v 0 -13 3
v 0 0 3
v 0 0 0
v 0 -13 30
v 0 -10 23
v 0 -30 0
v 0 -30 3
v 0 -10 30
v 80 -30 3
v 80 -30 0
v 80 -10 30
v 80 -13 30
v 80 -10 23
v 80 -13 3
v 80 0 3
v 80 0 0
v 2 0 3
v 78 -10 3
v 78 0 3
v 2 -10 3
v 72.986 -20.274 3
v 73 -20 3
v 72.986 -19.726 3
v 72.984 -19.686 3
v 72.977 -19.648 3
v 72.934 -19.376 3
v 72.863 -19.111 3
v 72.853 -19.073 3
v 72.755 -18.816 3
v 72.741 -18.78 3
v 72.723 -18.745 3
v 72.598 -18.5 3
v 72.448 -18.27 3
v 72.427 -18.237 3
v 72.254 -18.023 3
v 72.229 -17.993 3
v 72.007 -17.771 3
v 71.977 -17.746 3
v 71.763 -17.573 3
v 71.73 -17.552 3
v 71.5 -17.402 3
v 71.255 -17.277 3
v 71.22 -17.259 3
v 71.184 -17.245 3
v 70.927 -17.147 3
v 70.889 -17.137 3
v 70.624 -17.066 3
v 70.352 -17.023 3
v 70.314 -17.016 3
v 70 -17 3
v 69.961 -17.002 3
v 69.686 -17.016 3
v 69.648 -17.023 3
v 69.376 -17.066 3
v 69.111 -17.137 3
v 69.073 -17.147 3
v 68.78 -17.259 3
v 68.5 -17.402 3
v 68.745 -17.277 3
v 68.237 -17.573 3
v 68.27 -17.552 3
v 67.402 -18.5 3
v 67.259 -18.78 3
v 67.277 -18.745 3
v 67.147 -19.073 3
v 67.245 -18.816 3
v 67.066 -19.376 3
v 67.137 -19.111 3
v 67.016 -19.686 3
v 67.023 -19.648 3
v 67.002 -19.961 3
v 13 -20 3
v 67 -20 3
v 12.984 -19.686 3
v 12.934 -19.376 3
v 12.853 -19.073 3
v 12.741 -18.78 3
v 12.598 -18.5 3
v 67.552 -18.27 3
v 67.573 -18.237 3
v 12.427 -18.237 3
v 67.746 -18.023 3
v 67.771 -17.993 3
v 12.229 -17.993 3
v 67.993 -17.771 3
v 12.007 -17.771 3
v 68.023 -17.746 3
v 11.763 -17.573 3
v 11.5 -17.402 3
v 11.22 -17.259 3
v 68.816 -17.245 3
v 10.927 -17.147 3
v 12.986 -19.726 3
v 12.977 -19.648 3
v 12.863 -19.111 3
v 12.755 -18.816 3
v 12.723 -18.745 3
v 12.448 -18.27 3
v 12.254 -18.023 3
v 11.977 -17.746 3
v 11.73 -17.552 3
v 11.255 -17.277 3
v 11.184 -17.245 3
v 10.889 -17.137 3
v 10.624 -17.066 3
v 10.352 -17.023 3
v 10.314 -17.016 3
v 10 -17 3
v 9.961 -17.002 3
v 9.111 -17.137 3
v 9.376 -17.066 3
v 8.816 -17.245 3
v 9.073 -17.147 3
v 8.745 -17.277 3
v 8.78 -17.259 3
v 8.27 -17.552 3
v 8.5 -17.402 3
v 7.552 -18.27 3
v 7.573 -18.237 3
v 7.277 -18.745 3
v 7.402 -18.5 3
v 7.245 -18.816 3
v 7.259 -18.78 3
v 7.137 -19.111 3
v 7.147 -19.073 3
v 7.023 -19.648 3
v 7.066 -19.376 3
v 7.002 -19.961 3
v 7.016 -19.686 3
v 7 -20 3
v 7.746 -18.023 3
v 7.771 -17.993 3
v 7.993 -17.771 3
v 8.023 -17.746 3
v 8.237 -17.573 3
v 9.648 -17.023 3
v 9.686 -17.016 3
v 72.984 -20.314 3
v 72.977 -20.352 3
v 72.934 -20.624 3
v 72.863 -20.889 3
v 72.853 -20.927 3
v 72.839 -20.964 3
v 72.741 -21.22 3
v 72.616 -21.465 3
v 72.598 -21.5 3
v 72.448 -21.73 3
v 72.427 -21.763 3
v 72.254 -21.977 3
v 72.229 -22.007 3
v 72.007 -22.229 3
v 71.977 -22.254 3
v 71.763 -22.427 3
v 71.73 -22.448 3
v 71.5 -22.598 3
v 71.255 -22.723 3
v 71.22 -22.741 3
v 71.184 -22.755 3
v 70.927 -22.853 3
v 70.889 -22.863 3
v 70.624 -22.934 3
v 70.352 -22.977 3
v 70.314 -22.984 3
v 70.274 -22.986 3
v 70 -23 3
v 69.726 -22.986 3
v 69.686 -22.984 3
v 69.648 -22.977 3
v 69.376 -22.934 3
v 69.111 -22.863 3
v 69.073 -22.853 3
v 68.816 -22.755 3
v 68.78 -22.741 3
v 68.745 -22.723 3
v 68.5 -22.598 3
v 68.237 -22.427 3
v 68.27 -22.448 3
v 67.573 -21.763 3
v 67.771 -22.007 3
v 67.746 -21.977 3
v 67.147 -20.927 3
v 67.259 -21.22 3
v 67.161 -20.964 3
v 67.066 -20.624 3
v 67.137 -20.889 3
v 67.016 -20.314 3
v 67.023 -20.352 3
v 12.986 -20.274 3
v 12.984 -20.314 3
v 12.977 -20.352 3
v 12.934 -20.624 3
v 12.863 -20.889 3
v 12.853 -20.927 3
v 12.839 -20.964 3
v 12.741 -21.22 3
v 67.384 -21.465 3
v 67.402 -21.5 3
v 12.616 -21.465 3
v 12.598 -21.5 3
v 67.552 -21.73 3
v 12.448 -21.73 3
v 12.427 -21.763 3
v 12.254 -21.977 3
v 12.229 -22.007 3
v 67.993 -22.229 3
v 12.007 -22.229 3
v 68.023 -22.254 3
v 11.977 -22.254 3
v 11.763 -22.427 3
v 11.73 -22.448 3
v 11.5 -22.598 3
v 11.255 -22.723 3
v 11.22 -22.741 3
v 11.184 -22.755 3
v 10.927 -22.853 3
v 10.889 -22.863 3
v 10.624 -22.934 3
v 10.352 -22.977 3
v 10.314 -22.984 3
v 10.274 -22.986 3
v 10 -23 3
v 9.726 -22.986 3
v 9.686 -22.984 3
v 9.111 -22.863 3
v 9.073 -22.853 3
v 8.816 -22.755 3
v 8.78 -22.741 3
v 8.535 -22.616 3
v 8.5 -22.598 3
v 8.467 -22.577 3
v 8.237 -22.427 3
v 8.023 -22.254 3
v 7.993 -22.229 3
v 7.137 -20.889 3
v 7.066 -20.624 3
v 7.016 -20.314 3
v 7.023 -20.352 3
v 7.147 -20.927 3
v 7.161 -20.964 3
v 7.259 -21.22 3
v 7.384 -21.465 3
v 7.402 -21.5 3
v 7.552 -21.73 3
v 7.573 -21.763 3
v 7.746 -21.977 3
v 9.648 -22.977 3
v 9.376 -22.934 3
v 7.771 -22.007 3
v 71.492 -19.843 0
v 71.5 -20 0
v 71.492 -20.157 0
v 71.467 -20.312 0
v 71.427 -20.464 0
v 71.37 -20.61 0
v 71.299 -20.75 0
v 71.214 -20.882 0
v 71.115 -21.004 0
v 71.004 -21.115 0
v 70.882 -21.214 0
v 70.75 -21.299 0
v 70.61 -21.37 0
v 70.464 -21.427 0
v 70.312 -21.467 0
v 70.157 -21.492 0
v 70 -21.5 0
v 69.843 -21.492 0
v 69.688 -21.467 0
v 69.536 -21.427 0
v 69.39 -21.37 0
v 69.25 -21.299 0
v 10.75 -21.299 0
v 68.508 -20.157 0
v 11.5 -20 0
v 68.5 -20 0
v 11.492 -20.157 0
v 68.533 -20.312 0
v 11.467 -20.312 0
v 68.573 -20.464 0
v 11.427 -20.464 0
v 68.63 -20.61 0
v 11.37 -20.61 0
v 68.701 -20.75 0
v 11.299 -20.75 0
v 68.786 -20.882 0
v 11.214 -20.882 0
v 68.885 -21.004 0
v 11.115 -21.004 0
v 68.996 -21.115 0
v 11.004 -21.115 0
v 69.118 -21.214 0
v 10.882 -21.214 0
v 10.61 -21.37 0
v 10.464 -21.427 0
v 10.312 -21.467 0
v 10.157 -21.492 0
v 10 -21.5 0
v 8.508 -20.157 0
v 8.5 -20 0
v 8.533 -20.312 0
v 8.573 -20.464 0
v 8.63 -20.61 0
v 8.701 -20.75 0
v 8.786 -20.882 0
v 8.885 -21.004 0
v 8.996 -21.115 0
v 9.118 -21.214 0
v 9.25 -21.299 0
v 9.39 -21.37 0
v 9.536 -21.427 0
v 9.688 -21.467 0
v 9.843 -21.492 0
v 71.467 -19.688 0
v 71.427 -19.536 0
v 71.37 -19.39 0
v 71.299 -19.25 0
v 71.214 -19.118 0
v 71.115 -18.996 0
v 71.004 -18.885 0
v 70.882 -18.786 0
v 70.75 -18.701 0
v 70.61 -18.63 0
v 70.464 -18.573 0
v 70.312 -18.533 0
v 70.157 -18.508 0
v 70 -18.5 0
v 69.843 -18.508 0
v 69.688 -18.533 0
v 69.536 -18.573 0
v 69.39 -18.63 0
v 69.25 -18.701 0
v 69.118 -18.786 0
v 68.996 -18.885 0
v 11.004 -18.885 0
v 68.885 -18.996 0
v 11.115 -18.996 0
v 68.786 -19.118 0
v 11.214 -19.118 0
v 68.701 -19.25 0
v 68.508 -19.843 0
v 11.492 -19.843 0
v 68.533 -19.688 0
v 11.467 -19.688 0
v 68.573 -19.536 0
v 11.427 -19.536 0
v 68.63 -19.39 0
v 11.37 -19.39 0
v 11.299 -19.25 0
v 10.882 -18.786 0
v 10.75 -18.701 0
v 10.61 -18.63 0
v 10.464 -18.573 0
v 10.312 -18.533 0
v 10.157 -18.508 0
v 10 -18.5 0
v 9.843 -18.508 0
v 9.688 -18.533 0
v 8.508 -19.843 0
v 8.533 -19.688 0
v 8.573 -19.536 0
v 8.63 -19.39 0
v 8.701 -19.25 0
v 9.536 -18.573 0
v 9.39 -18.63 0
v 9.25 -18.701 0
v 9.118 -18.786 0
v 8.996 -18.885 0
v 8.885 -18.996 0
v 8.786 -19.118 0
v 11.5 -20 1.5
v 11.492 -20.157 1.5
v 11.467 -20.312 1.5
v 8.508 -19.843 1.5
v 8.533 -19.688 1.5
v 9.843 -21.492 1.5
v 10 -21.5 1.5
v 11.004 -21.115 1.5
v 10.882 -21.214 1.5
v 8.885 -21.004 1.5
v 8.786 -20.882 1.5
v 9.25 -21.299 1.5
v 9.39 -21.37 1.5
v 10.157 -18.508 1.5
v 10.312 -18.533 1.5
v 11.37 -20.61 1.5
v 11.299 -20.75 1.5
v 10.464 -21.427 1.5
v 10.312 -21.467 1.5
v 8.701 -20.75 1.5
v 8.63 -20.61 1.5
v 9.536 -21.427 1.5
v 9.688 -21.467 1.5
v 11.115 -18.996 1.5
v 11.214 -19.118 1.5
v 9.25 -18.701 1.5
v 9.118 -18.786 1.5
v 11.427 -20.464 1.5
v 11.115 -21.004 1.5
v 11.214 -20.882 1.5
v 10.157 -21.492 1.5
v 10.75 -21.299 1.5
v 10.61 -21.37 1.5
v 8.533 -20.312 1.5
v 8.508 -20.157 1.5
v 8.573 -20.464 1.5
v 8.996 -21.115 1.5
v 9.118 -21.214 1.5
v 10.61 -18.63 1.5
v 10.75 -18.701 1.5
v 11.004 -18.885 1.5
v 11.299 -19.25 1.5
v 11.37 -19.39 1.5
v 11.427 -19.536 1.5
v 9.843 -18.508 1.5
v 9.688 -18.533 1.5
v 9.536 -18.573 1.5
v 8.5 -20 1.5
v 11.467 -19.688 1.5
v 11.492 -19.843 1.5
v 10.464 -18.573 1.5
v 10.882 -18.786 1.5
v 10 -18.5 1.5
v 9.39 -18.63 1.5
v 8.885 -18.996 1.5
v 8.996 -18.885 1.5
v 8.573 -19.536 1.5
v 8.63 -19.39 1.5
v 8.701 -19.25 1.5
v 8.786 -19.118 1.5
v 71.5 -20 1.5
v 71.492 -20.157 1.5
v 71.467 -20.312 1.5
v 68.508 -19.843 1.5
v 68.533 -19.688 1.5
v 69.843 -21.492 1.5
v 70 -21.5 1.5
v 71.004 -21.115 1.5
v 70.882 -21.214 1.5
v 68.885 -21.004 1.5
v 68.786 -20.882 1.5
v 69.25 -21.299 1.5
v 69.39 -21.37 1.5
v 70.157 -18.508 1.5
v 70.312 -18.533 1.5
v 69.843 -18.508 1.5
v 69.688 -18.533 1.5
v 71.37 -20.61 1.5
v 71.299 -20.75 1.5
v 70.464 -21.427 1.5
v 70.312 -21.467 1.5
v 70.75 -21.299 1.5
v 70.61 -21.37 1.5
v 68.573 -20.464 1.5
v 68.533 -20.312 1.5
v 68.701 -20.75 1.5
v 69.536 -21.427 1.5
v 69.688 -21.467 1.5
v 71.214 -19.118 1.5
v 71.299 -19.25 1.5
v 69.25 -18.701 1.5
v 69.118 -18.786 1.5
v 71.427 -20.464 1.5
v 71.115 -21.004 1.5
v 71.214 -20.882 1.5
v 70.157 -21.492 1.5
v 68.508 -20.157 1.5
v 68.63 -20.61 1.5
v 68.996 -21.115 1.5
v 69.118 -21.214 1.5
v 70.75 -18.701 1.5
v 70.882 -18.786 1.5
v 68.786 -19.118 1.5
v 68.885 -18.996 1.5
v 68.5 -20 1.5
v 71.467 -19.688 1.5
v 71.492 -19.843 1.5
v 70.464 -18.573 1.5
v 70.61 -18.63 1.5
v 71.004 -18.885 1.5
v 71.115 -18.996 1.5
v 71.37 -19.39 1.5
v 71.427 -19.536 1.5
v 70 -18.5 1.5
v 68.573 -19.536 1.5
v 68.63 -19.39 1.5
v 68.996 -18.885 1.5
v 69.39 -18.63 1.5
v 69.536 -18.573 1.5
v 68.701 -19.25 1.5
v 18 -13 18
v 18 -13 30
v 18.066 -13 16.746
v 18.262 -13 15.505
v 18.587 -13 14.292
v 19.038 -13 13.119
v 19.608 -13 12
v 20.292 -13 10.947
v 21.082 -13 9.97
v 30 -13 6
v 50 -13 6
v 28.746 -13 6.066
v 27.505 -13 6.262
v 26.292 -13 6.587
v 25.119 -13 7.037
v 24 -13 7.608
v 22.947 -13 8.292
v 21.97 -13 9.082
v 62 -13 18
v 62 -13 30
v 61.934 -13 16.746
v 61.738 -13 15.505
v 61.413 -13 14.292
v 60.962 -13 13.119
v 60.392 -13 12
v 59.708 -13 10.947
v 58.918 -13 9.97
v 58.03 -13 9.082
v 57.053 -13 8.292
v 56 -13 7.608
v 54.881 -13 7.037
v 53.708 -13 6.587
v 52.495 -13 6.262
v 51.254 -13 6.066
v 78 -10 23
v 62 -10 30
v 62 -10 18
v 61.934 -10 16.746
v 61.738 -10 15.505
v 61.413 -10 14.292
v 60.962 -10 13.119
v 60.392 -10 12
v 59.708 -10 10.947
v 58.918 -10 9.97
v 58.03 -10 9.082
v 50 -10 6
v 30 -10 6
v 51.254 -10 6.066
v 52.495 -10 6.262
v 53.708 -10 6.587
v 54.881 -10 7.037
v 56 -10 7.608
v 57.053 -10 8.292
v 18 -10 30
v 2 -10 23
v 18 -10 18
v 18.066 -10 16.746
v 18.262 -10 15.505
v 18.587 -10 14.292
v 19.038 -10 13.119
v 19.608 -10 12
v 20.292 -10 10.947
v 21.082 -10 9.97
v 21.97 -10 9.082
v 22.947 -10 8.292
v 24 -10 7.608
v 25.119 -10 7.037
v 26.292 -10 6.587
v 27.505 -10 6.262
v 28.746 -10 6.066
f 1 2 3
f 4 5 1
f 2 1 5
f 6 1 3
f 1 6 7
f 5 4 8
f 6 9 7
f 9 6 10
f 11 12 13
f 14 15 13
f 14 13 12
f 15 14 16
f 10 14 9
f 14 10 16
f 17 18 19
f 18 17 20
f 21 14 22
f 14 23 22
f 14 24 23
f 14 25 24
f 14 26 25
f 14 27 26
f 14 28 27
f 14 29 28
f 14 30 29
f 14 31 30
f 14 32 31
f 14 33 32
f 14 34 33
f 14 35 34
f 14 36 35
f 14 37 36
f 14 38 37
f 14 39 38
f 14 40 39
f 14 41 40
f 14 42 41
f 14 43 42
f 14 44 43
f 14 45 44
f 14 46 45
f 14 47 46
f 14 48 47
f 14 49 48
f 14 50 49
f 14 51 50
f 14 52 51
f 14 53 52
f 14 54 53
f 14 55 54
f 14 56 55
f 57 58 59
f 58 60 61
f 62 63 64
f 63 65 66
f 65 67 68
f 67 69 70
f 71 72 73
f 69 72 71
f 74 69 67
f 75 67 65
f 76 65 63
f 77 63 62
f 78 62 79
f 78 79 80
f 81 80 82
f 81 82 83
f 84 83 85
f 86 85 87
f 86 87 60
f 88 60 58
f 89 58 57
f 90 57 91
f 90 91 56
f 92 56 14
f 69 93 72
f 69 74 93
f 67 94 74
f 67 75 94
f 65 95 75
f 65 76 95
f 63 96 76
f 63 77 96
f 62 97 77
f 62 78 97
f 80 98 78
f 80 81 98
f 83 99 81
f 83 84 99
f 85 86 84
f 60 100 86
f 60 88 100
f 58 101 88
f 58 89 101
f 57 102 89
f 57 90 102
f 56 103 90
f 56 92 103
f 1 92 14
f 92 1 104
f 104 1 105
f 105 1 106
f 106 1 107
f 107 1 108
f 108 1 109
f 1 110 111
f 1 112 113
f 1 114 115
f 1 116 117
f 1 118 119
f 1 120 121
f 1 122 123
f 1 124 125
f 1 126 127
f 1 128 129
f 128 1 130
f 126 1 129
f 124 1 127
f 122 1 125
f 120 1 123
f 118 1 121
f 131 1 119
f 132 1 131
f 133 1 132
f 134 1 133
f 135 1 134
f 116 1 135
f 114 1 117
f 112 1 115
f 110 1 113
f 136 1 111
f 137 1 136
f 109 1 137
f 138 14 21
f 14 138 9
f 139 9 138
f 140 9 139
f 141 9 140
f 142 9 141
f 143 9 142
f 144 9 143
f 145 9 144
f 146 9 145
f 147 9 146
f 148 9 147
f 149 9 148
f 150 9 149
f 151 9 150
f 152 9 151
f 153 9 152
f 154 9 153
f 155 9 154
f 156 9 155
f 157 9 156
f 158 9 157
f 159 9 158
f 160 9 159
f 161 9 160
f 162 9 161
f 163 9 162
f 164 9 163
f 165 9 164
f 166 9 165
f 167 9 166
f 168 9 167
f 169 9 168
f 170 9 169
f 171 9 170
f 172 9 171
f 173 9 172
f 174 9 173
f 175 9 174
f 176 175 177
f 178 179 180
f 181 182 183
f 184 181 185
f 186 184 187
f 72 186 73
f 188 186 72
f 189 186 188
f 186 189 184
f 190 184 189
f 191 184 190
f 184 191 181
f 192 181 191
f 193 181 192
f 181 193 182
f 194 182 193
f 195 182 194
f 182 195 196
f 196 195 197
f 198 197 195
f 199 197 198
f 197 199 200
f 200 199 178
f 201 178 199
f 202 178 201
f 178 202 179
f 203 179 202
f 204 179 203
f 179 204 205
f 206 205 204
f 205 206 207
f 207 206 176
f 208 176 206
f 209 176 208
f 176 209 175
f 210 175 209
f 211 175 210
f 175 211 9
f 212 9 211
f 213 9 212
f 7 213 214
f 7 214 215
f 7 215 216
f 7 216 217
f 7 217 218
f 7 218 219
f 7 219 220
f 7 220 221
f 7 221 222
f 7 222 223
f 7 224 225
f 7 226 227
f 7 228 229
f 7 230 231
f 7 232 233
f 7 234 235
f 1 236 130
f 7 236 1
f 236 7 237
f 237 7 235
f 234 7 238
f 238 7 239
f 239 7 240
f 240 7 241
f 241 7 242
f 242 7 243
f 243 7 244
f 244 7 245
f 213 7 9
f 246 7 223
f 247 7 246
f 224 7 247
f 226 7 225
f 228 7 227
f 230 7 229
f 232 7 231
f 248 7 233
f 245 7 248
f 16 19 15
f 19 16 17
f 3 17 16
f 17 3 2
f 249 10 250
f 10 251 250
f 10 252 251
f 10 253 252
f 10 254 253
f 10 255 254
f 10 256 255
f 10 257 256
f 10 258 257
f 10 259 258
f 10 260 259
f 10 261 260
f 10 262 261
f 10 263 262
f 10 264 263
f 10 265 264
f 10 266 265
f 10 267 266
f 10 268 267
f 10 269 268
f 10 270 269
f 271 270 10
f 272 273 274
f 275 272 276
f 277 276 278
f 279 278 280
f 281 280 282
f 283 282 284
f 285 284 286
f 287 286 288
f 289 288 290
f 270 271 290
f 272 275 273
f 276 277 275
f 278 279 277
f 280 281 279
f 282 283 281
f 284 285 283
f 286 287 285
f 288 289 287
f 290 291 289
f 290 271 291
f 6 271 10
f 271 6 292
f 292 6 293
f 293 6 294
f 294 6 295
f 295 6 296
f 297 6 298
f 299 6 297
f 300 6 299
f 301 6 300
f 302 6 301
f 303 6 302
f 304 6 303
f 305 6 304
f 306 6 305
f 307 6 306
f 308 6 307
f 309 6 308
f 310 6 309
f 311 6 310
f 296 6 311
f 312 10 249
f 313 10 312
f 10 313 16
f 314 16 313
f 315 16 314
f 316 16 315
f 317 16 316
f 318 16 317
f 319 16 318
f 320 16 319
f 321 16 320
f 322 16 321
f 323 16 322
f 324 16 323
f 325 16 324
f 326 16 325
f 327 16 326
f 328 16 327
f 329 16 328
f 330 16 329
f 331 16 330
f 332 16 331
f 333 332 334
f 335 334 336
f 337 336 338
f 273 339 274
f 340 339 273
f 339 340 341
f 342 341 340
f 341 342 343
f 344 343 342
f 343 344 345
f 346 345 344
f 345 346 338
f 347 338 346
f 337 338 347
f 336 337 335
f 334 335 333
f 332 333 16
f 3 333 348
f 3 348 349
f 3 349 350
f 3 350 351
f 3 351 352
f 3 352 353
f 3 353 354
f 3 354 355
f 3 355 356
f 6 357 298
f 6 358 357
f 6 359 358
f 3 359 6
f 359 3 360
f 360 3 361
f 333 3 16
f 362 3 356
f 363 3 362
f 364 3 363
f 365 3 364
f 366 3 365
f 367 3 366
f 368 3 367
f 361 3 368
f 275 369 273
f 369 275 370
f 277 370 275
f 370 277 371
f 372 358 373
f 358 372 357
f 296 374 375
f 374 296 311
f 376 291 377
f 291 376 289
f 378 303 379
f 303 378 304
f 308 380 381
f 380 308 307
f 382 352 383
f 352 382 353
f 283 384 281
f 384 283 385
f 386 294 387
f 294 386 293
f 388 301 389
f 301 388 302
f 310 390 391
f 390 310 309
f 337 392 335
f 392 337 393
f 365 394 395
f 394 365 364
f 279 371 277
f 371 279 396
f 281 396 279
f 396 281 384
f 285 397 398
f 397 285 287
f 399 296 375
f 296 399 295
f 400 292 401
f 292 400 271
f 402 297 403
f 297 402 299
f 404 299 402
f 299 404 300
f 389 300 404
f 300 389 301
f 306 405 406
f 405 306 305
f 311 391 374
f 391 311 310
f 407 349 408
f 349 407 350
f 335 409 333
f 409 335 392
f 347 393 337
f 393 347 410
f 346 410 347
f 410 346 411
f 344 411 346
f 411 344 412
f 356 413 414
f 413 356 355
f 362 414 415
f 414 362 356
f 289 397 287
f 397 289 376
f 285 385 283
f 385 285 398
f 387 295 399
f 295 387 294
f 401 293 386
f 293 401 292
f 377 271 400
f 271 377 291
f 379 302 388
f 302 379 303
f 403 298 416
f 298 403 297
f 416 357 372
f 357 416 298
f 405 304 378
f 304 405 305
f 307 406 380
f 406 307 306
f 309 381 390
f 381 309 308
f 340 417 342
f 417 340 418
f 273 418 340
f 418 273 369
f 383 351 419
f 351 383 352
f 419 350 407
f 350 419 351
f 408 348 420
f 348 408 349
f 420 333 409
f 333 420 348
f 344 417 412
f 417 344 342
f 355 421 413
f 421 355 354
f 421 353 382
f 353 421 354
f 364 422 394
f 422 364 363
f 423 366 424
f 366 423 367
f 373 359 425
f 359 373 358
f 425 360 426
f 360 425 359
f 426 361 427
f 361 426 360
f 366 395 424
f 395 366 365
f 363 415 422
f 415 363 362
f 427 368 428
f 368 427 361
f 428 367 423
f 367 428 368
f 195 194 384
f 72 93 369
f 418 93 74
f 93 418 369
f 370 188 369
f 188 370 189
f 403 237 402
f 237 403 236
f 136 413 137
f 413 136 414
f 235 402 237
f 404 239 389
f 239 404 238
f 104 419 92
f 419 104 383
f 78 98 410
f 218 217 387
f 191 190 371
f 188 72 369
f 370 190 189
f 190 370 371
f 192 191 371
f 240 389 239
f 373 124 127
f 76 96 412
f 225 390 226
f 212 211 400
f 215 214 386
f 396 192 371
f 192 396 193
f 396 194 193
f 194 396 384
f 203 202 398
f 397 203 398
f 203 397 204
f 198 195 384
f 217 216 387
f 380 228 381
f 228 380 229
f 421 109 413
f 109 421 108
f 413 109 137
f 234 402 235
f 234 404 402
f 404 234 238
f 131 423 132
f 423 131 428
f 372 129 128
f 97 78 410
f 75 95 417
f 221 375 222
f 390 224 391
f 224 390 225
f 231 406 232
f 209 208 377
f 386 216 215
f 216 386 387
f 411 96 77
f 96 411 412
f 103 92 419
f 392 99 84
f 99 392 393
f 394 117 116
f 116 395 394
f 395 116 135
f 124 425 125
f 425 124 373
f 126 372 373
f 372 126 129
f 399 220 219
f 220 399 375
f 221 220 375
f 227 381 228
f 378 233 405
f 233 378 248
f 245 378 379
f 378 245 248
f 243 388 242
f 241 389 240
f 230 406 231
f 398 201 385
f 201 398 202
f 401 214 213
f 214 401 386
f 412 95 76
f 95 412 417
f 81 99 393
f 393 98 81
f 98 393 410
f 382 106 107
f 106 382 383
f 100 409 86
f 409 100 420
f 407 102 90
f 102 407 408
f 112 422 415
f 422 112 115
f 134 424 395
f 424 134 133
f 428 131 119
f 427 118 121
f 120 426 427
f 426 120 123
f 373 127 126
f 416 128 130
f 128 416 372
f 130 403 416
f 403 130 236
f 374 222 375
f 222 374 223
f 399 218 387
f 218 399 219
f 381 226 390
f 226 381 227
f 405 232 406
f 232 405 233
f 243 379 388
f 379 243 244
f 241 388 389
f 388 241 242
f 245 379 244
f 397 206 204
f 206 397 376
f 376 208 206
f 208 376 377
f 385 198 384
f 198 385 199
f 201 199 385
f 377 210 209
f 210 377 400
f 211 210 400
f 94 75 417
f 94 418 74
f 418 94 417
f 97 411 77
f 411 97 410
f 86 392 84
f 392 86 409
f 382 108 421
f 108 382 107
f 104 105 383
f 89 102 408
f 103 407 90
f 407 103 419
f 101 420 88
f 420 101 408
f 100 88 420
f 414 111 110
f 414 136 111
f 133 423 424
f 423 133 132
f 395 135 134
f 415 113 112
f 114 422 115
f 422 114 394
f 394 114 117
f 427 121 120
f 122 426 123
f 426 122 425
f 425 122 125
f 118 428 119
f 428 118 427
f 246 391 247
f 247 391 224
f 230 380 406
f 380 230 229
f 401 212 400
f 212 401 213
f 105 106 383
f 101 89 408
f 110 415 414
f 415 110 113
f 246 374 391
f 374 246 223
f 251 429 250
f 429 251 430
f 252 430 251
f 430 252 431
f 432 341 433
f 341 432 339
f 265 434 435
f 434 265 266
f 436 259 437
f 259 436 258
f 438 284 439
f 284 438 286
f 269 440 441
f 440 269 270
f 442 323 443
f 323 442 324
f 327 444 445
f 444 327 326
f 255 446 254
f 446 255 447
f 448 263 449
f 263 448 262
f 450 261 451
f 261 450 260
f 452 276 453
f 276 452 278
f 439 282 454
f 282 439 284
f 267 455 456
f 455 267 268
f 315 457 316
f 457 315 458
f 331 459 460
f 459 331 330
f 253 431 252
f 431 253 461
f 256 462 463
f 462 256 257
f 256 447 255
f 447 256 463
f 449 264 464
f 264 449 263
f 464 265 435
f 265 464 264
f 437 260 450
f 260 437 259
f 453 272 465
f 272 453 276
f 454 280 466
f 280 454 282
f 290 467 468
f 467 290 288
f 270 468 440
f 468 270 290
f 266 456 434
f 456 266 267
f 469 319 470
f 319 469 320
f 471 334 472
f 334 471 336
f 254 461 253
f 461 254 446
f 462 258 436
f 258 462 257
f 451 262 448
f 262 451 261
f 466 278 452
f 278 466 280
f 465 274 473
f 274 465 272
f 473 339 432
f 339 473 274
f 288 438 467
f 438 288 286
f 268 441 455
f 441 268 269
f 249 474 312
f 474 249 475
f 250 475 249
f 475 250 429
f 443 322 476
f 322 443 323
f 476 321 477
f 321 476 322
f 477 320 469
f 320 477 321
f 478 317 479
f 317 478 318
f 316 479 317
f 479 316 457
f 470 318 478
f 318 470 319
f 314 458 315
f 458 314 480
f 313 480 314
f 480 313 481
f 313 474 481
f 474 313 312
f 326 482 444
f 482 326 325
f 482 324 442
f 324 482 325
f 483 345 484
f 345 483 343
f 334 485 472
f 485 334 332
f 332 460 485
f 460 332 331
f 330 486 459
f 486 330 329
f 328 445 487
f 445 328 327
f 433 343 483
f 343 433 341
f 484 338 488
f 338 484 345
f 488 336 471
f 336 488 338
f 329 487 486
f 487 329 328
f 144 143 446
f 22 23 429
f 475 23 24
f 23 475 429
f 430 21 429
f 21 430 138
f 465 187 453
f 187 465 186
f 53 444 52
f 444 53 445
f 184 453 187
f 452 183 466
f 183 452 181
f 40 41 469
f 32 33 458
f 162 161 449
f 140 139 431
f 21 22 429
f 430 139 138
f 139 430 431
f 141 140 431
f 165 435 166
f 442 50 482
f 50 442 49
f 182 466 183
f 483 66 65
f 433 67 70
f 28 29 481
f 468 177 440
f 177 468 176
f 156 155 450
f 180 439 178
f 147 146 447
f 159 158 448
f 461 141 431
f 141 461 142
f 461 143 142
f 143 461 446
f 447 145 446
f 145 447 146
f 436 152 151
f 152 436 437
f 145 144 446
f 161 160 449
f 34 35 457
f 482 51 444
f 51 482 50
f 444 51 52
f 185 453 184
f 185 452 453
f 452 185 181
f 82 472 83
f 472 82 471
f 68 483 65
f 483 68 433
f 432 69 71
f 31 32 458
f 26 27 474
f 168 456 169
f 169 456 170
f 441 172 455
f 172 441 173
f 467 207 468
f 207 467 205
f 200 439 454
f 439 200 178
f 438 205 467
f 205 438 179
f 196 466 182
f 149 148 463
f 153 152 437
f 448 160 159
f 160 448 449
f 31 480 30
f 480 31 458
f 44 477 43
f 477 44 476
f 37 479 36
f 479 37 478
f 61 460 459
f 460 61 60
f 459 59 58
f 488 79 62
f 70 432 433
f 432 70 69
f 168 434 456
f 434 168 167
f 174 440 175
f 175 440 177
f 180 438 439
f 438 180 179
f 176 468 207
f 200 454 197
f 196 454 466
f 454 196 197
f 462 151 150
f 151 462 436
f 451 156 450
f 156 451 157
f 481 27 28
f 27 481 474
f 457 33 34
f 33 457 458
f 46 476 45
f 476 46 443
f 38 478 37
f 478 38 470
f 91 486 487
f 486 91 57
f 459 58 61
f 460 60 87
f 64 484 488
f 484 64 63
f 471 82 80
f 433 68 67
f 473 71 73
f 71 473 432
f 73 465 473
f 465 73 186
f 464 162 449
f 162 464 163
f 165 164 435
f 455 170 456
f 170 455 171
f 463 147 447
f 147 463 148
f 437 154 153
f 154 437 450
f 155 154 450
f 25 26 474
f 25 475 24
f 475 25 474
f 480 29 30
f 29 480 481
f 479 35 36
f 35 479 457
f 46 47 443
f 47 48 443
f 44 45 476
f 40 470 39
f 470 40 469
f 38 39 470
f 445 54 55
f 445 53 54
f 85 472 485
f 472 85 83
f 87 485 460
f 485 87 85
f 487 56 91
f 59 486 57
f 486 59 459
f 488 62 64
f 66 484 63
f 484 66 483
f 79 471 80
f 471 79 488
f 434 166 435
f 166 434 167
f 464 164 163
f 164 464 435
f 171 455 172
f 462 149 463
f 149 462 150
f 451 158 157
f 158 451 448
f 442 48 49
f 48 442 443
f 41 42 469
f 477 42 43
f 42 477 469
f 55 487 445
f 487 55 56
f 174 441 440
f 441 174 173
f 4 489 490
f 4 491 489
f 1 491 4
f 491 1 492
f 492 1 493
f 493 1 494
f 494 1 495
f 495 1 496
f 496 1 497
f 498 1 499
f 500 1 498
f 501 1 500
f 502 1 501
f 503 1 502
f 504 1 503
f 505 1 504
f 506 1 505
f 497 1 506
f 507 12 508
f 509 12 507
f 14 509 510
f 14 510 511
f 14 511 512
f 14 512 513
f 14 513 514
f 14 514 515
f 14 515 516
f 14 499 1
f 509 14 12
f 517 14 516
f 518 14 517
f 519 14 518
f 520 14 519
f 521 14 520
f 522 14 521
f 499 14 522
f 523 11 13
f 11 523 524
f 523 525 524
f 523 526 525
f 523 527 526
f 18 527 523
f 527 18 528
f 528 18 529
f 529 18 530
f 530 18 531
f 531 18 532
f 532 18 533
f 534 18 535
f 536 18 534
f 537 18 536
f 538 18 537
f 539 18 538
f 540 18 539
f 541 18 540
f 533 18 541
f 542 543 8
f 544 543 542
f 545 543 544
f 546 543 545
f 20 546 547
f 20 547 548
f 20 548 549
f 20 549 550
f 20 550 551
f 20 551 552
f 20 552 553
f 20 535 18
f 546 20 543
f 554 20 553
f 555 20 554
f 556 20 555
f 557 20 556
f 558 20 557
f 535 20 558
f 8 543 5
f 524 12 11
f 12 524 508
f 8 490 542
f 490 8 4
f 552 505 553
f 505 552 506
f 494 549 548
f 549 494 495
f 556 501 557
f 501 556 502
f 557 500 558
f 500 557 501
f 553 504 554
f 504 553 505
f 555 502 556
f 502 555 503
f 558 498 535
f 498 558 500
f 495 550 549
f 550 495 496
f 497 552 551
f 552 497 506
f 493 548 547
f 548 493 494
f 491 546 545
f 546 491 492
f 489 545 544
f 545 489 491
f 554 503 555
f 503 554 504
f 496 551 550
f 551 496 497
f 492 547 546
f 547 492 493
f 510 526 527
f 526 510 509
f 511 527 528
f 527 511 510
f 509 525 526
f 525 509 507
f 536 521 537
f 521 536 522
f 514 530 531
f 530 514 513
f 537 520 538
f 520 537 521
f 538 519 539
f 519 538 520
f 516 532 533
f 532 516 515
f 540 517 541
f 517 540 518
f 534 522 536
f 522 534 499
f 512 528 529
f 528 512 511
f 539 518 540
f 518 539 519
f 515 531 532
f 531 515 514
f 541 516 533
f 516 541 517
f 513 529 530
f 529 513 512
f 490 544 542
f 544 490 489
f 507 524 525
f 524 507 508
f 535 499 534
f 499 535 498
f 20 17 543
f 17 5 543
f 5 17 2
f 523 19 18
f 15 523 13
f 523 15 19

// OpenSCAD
$fn = 60;

rotate([90, 0, 0]) {
 difference () {
   cube([80, 3, 30]);
   translate([10, 4, 20]) rotate([90, 0, 0]) cylinder(5, r=1.5);
   translate([10, 1.5, 20]) rotate([-90, 0, 0]) cylinder(2, r1=1.5, r2=3.5);
   translate([70, 4, 20]) rotate([90, 0, 0]) cylinder(5, r=1.5);
   translate([70, 1.5, 20]) rotate([-90, 0, 0]) cylinder(2, r1=1.5, r2=3.5);
 

 
   }
 
difference () {
  translate([0, 0, 10]) cube([80, 30, 3]);
  
  translate([30, 18, 9]) cylinder(5, r=12);
  translate([50, 18, 9]) cylinder(5, r=12);
  translate([18, 18, 9]) cube([44, 16, 5]);
    translate([30, 6, 9]) cube([20, 12, 5]);


}




translate([2, 3, 0]) rotate([0, -90, 0]) {
linear_extrude(height=2) {
polygon([[0, 0], [10, 0], [10, 20]]);
}
}

translate([80, 3, 0]) rotate([0, -90, 0]) {
linear_extrude(height=2) {
polygon([[0, 0], [10, 0], [10, 20]]);
}
}

}
